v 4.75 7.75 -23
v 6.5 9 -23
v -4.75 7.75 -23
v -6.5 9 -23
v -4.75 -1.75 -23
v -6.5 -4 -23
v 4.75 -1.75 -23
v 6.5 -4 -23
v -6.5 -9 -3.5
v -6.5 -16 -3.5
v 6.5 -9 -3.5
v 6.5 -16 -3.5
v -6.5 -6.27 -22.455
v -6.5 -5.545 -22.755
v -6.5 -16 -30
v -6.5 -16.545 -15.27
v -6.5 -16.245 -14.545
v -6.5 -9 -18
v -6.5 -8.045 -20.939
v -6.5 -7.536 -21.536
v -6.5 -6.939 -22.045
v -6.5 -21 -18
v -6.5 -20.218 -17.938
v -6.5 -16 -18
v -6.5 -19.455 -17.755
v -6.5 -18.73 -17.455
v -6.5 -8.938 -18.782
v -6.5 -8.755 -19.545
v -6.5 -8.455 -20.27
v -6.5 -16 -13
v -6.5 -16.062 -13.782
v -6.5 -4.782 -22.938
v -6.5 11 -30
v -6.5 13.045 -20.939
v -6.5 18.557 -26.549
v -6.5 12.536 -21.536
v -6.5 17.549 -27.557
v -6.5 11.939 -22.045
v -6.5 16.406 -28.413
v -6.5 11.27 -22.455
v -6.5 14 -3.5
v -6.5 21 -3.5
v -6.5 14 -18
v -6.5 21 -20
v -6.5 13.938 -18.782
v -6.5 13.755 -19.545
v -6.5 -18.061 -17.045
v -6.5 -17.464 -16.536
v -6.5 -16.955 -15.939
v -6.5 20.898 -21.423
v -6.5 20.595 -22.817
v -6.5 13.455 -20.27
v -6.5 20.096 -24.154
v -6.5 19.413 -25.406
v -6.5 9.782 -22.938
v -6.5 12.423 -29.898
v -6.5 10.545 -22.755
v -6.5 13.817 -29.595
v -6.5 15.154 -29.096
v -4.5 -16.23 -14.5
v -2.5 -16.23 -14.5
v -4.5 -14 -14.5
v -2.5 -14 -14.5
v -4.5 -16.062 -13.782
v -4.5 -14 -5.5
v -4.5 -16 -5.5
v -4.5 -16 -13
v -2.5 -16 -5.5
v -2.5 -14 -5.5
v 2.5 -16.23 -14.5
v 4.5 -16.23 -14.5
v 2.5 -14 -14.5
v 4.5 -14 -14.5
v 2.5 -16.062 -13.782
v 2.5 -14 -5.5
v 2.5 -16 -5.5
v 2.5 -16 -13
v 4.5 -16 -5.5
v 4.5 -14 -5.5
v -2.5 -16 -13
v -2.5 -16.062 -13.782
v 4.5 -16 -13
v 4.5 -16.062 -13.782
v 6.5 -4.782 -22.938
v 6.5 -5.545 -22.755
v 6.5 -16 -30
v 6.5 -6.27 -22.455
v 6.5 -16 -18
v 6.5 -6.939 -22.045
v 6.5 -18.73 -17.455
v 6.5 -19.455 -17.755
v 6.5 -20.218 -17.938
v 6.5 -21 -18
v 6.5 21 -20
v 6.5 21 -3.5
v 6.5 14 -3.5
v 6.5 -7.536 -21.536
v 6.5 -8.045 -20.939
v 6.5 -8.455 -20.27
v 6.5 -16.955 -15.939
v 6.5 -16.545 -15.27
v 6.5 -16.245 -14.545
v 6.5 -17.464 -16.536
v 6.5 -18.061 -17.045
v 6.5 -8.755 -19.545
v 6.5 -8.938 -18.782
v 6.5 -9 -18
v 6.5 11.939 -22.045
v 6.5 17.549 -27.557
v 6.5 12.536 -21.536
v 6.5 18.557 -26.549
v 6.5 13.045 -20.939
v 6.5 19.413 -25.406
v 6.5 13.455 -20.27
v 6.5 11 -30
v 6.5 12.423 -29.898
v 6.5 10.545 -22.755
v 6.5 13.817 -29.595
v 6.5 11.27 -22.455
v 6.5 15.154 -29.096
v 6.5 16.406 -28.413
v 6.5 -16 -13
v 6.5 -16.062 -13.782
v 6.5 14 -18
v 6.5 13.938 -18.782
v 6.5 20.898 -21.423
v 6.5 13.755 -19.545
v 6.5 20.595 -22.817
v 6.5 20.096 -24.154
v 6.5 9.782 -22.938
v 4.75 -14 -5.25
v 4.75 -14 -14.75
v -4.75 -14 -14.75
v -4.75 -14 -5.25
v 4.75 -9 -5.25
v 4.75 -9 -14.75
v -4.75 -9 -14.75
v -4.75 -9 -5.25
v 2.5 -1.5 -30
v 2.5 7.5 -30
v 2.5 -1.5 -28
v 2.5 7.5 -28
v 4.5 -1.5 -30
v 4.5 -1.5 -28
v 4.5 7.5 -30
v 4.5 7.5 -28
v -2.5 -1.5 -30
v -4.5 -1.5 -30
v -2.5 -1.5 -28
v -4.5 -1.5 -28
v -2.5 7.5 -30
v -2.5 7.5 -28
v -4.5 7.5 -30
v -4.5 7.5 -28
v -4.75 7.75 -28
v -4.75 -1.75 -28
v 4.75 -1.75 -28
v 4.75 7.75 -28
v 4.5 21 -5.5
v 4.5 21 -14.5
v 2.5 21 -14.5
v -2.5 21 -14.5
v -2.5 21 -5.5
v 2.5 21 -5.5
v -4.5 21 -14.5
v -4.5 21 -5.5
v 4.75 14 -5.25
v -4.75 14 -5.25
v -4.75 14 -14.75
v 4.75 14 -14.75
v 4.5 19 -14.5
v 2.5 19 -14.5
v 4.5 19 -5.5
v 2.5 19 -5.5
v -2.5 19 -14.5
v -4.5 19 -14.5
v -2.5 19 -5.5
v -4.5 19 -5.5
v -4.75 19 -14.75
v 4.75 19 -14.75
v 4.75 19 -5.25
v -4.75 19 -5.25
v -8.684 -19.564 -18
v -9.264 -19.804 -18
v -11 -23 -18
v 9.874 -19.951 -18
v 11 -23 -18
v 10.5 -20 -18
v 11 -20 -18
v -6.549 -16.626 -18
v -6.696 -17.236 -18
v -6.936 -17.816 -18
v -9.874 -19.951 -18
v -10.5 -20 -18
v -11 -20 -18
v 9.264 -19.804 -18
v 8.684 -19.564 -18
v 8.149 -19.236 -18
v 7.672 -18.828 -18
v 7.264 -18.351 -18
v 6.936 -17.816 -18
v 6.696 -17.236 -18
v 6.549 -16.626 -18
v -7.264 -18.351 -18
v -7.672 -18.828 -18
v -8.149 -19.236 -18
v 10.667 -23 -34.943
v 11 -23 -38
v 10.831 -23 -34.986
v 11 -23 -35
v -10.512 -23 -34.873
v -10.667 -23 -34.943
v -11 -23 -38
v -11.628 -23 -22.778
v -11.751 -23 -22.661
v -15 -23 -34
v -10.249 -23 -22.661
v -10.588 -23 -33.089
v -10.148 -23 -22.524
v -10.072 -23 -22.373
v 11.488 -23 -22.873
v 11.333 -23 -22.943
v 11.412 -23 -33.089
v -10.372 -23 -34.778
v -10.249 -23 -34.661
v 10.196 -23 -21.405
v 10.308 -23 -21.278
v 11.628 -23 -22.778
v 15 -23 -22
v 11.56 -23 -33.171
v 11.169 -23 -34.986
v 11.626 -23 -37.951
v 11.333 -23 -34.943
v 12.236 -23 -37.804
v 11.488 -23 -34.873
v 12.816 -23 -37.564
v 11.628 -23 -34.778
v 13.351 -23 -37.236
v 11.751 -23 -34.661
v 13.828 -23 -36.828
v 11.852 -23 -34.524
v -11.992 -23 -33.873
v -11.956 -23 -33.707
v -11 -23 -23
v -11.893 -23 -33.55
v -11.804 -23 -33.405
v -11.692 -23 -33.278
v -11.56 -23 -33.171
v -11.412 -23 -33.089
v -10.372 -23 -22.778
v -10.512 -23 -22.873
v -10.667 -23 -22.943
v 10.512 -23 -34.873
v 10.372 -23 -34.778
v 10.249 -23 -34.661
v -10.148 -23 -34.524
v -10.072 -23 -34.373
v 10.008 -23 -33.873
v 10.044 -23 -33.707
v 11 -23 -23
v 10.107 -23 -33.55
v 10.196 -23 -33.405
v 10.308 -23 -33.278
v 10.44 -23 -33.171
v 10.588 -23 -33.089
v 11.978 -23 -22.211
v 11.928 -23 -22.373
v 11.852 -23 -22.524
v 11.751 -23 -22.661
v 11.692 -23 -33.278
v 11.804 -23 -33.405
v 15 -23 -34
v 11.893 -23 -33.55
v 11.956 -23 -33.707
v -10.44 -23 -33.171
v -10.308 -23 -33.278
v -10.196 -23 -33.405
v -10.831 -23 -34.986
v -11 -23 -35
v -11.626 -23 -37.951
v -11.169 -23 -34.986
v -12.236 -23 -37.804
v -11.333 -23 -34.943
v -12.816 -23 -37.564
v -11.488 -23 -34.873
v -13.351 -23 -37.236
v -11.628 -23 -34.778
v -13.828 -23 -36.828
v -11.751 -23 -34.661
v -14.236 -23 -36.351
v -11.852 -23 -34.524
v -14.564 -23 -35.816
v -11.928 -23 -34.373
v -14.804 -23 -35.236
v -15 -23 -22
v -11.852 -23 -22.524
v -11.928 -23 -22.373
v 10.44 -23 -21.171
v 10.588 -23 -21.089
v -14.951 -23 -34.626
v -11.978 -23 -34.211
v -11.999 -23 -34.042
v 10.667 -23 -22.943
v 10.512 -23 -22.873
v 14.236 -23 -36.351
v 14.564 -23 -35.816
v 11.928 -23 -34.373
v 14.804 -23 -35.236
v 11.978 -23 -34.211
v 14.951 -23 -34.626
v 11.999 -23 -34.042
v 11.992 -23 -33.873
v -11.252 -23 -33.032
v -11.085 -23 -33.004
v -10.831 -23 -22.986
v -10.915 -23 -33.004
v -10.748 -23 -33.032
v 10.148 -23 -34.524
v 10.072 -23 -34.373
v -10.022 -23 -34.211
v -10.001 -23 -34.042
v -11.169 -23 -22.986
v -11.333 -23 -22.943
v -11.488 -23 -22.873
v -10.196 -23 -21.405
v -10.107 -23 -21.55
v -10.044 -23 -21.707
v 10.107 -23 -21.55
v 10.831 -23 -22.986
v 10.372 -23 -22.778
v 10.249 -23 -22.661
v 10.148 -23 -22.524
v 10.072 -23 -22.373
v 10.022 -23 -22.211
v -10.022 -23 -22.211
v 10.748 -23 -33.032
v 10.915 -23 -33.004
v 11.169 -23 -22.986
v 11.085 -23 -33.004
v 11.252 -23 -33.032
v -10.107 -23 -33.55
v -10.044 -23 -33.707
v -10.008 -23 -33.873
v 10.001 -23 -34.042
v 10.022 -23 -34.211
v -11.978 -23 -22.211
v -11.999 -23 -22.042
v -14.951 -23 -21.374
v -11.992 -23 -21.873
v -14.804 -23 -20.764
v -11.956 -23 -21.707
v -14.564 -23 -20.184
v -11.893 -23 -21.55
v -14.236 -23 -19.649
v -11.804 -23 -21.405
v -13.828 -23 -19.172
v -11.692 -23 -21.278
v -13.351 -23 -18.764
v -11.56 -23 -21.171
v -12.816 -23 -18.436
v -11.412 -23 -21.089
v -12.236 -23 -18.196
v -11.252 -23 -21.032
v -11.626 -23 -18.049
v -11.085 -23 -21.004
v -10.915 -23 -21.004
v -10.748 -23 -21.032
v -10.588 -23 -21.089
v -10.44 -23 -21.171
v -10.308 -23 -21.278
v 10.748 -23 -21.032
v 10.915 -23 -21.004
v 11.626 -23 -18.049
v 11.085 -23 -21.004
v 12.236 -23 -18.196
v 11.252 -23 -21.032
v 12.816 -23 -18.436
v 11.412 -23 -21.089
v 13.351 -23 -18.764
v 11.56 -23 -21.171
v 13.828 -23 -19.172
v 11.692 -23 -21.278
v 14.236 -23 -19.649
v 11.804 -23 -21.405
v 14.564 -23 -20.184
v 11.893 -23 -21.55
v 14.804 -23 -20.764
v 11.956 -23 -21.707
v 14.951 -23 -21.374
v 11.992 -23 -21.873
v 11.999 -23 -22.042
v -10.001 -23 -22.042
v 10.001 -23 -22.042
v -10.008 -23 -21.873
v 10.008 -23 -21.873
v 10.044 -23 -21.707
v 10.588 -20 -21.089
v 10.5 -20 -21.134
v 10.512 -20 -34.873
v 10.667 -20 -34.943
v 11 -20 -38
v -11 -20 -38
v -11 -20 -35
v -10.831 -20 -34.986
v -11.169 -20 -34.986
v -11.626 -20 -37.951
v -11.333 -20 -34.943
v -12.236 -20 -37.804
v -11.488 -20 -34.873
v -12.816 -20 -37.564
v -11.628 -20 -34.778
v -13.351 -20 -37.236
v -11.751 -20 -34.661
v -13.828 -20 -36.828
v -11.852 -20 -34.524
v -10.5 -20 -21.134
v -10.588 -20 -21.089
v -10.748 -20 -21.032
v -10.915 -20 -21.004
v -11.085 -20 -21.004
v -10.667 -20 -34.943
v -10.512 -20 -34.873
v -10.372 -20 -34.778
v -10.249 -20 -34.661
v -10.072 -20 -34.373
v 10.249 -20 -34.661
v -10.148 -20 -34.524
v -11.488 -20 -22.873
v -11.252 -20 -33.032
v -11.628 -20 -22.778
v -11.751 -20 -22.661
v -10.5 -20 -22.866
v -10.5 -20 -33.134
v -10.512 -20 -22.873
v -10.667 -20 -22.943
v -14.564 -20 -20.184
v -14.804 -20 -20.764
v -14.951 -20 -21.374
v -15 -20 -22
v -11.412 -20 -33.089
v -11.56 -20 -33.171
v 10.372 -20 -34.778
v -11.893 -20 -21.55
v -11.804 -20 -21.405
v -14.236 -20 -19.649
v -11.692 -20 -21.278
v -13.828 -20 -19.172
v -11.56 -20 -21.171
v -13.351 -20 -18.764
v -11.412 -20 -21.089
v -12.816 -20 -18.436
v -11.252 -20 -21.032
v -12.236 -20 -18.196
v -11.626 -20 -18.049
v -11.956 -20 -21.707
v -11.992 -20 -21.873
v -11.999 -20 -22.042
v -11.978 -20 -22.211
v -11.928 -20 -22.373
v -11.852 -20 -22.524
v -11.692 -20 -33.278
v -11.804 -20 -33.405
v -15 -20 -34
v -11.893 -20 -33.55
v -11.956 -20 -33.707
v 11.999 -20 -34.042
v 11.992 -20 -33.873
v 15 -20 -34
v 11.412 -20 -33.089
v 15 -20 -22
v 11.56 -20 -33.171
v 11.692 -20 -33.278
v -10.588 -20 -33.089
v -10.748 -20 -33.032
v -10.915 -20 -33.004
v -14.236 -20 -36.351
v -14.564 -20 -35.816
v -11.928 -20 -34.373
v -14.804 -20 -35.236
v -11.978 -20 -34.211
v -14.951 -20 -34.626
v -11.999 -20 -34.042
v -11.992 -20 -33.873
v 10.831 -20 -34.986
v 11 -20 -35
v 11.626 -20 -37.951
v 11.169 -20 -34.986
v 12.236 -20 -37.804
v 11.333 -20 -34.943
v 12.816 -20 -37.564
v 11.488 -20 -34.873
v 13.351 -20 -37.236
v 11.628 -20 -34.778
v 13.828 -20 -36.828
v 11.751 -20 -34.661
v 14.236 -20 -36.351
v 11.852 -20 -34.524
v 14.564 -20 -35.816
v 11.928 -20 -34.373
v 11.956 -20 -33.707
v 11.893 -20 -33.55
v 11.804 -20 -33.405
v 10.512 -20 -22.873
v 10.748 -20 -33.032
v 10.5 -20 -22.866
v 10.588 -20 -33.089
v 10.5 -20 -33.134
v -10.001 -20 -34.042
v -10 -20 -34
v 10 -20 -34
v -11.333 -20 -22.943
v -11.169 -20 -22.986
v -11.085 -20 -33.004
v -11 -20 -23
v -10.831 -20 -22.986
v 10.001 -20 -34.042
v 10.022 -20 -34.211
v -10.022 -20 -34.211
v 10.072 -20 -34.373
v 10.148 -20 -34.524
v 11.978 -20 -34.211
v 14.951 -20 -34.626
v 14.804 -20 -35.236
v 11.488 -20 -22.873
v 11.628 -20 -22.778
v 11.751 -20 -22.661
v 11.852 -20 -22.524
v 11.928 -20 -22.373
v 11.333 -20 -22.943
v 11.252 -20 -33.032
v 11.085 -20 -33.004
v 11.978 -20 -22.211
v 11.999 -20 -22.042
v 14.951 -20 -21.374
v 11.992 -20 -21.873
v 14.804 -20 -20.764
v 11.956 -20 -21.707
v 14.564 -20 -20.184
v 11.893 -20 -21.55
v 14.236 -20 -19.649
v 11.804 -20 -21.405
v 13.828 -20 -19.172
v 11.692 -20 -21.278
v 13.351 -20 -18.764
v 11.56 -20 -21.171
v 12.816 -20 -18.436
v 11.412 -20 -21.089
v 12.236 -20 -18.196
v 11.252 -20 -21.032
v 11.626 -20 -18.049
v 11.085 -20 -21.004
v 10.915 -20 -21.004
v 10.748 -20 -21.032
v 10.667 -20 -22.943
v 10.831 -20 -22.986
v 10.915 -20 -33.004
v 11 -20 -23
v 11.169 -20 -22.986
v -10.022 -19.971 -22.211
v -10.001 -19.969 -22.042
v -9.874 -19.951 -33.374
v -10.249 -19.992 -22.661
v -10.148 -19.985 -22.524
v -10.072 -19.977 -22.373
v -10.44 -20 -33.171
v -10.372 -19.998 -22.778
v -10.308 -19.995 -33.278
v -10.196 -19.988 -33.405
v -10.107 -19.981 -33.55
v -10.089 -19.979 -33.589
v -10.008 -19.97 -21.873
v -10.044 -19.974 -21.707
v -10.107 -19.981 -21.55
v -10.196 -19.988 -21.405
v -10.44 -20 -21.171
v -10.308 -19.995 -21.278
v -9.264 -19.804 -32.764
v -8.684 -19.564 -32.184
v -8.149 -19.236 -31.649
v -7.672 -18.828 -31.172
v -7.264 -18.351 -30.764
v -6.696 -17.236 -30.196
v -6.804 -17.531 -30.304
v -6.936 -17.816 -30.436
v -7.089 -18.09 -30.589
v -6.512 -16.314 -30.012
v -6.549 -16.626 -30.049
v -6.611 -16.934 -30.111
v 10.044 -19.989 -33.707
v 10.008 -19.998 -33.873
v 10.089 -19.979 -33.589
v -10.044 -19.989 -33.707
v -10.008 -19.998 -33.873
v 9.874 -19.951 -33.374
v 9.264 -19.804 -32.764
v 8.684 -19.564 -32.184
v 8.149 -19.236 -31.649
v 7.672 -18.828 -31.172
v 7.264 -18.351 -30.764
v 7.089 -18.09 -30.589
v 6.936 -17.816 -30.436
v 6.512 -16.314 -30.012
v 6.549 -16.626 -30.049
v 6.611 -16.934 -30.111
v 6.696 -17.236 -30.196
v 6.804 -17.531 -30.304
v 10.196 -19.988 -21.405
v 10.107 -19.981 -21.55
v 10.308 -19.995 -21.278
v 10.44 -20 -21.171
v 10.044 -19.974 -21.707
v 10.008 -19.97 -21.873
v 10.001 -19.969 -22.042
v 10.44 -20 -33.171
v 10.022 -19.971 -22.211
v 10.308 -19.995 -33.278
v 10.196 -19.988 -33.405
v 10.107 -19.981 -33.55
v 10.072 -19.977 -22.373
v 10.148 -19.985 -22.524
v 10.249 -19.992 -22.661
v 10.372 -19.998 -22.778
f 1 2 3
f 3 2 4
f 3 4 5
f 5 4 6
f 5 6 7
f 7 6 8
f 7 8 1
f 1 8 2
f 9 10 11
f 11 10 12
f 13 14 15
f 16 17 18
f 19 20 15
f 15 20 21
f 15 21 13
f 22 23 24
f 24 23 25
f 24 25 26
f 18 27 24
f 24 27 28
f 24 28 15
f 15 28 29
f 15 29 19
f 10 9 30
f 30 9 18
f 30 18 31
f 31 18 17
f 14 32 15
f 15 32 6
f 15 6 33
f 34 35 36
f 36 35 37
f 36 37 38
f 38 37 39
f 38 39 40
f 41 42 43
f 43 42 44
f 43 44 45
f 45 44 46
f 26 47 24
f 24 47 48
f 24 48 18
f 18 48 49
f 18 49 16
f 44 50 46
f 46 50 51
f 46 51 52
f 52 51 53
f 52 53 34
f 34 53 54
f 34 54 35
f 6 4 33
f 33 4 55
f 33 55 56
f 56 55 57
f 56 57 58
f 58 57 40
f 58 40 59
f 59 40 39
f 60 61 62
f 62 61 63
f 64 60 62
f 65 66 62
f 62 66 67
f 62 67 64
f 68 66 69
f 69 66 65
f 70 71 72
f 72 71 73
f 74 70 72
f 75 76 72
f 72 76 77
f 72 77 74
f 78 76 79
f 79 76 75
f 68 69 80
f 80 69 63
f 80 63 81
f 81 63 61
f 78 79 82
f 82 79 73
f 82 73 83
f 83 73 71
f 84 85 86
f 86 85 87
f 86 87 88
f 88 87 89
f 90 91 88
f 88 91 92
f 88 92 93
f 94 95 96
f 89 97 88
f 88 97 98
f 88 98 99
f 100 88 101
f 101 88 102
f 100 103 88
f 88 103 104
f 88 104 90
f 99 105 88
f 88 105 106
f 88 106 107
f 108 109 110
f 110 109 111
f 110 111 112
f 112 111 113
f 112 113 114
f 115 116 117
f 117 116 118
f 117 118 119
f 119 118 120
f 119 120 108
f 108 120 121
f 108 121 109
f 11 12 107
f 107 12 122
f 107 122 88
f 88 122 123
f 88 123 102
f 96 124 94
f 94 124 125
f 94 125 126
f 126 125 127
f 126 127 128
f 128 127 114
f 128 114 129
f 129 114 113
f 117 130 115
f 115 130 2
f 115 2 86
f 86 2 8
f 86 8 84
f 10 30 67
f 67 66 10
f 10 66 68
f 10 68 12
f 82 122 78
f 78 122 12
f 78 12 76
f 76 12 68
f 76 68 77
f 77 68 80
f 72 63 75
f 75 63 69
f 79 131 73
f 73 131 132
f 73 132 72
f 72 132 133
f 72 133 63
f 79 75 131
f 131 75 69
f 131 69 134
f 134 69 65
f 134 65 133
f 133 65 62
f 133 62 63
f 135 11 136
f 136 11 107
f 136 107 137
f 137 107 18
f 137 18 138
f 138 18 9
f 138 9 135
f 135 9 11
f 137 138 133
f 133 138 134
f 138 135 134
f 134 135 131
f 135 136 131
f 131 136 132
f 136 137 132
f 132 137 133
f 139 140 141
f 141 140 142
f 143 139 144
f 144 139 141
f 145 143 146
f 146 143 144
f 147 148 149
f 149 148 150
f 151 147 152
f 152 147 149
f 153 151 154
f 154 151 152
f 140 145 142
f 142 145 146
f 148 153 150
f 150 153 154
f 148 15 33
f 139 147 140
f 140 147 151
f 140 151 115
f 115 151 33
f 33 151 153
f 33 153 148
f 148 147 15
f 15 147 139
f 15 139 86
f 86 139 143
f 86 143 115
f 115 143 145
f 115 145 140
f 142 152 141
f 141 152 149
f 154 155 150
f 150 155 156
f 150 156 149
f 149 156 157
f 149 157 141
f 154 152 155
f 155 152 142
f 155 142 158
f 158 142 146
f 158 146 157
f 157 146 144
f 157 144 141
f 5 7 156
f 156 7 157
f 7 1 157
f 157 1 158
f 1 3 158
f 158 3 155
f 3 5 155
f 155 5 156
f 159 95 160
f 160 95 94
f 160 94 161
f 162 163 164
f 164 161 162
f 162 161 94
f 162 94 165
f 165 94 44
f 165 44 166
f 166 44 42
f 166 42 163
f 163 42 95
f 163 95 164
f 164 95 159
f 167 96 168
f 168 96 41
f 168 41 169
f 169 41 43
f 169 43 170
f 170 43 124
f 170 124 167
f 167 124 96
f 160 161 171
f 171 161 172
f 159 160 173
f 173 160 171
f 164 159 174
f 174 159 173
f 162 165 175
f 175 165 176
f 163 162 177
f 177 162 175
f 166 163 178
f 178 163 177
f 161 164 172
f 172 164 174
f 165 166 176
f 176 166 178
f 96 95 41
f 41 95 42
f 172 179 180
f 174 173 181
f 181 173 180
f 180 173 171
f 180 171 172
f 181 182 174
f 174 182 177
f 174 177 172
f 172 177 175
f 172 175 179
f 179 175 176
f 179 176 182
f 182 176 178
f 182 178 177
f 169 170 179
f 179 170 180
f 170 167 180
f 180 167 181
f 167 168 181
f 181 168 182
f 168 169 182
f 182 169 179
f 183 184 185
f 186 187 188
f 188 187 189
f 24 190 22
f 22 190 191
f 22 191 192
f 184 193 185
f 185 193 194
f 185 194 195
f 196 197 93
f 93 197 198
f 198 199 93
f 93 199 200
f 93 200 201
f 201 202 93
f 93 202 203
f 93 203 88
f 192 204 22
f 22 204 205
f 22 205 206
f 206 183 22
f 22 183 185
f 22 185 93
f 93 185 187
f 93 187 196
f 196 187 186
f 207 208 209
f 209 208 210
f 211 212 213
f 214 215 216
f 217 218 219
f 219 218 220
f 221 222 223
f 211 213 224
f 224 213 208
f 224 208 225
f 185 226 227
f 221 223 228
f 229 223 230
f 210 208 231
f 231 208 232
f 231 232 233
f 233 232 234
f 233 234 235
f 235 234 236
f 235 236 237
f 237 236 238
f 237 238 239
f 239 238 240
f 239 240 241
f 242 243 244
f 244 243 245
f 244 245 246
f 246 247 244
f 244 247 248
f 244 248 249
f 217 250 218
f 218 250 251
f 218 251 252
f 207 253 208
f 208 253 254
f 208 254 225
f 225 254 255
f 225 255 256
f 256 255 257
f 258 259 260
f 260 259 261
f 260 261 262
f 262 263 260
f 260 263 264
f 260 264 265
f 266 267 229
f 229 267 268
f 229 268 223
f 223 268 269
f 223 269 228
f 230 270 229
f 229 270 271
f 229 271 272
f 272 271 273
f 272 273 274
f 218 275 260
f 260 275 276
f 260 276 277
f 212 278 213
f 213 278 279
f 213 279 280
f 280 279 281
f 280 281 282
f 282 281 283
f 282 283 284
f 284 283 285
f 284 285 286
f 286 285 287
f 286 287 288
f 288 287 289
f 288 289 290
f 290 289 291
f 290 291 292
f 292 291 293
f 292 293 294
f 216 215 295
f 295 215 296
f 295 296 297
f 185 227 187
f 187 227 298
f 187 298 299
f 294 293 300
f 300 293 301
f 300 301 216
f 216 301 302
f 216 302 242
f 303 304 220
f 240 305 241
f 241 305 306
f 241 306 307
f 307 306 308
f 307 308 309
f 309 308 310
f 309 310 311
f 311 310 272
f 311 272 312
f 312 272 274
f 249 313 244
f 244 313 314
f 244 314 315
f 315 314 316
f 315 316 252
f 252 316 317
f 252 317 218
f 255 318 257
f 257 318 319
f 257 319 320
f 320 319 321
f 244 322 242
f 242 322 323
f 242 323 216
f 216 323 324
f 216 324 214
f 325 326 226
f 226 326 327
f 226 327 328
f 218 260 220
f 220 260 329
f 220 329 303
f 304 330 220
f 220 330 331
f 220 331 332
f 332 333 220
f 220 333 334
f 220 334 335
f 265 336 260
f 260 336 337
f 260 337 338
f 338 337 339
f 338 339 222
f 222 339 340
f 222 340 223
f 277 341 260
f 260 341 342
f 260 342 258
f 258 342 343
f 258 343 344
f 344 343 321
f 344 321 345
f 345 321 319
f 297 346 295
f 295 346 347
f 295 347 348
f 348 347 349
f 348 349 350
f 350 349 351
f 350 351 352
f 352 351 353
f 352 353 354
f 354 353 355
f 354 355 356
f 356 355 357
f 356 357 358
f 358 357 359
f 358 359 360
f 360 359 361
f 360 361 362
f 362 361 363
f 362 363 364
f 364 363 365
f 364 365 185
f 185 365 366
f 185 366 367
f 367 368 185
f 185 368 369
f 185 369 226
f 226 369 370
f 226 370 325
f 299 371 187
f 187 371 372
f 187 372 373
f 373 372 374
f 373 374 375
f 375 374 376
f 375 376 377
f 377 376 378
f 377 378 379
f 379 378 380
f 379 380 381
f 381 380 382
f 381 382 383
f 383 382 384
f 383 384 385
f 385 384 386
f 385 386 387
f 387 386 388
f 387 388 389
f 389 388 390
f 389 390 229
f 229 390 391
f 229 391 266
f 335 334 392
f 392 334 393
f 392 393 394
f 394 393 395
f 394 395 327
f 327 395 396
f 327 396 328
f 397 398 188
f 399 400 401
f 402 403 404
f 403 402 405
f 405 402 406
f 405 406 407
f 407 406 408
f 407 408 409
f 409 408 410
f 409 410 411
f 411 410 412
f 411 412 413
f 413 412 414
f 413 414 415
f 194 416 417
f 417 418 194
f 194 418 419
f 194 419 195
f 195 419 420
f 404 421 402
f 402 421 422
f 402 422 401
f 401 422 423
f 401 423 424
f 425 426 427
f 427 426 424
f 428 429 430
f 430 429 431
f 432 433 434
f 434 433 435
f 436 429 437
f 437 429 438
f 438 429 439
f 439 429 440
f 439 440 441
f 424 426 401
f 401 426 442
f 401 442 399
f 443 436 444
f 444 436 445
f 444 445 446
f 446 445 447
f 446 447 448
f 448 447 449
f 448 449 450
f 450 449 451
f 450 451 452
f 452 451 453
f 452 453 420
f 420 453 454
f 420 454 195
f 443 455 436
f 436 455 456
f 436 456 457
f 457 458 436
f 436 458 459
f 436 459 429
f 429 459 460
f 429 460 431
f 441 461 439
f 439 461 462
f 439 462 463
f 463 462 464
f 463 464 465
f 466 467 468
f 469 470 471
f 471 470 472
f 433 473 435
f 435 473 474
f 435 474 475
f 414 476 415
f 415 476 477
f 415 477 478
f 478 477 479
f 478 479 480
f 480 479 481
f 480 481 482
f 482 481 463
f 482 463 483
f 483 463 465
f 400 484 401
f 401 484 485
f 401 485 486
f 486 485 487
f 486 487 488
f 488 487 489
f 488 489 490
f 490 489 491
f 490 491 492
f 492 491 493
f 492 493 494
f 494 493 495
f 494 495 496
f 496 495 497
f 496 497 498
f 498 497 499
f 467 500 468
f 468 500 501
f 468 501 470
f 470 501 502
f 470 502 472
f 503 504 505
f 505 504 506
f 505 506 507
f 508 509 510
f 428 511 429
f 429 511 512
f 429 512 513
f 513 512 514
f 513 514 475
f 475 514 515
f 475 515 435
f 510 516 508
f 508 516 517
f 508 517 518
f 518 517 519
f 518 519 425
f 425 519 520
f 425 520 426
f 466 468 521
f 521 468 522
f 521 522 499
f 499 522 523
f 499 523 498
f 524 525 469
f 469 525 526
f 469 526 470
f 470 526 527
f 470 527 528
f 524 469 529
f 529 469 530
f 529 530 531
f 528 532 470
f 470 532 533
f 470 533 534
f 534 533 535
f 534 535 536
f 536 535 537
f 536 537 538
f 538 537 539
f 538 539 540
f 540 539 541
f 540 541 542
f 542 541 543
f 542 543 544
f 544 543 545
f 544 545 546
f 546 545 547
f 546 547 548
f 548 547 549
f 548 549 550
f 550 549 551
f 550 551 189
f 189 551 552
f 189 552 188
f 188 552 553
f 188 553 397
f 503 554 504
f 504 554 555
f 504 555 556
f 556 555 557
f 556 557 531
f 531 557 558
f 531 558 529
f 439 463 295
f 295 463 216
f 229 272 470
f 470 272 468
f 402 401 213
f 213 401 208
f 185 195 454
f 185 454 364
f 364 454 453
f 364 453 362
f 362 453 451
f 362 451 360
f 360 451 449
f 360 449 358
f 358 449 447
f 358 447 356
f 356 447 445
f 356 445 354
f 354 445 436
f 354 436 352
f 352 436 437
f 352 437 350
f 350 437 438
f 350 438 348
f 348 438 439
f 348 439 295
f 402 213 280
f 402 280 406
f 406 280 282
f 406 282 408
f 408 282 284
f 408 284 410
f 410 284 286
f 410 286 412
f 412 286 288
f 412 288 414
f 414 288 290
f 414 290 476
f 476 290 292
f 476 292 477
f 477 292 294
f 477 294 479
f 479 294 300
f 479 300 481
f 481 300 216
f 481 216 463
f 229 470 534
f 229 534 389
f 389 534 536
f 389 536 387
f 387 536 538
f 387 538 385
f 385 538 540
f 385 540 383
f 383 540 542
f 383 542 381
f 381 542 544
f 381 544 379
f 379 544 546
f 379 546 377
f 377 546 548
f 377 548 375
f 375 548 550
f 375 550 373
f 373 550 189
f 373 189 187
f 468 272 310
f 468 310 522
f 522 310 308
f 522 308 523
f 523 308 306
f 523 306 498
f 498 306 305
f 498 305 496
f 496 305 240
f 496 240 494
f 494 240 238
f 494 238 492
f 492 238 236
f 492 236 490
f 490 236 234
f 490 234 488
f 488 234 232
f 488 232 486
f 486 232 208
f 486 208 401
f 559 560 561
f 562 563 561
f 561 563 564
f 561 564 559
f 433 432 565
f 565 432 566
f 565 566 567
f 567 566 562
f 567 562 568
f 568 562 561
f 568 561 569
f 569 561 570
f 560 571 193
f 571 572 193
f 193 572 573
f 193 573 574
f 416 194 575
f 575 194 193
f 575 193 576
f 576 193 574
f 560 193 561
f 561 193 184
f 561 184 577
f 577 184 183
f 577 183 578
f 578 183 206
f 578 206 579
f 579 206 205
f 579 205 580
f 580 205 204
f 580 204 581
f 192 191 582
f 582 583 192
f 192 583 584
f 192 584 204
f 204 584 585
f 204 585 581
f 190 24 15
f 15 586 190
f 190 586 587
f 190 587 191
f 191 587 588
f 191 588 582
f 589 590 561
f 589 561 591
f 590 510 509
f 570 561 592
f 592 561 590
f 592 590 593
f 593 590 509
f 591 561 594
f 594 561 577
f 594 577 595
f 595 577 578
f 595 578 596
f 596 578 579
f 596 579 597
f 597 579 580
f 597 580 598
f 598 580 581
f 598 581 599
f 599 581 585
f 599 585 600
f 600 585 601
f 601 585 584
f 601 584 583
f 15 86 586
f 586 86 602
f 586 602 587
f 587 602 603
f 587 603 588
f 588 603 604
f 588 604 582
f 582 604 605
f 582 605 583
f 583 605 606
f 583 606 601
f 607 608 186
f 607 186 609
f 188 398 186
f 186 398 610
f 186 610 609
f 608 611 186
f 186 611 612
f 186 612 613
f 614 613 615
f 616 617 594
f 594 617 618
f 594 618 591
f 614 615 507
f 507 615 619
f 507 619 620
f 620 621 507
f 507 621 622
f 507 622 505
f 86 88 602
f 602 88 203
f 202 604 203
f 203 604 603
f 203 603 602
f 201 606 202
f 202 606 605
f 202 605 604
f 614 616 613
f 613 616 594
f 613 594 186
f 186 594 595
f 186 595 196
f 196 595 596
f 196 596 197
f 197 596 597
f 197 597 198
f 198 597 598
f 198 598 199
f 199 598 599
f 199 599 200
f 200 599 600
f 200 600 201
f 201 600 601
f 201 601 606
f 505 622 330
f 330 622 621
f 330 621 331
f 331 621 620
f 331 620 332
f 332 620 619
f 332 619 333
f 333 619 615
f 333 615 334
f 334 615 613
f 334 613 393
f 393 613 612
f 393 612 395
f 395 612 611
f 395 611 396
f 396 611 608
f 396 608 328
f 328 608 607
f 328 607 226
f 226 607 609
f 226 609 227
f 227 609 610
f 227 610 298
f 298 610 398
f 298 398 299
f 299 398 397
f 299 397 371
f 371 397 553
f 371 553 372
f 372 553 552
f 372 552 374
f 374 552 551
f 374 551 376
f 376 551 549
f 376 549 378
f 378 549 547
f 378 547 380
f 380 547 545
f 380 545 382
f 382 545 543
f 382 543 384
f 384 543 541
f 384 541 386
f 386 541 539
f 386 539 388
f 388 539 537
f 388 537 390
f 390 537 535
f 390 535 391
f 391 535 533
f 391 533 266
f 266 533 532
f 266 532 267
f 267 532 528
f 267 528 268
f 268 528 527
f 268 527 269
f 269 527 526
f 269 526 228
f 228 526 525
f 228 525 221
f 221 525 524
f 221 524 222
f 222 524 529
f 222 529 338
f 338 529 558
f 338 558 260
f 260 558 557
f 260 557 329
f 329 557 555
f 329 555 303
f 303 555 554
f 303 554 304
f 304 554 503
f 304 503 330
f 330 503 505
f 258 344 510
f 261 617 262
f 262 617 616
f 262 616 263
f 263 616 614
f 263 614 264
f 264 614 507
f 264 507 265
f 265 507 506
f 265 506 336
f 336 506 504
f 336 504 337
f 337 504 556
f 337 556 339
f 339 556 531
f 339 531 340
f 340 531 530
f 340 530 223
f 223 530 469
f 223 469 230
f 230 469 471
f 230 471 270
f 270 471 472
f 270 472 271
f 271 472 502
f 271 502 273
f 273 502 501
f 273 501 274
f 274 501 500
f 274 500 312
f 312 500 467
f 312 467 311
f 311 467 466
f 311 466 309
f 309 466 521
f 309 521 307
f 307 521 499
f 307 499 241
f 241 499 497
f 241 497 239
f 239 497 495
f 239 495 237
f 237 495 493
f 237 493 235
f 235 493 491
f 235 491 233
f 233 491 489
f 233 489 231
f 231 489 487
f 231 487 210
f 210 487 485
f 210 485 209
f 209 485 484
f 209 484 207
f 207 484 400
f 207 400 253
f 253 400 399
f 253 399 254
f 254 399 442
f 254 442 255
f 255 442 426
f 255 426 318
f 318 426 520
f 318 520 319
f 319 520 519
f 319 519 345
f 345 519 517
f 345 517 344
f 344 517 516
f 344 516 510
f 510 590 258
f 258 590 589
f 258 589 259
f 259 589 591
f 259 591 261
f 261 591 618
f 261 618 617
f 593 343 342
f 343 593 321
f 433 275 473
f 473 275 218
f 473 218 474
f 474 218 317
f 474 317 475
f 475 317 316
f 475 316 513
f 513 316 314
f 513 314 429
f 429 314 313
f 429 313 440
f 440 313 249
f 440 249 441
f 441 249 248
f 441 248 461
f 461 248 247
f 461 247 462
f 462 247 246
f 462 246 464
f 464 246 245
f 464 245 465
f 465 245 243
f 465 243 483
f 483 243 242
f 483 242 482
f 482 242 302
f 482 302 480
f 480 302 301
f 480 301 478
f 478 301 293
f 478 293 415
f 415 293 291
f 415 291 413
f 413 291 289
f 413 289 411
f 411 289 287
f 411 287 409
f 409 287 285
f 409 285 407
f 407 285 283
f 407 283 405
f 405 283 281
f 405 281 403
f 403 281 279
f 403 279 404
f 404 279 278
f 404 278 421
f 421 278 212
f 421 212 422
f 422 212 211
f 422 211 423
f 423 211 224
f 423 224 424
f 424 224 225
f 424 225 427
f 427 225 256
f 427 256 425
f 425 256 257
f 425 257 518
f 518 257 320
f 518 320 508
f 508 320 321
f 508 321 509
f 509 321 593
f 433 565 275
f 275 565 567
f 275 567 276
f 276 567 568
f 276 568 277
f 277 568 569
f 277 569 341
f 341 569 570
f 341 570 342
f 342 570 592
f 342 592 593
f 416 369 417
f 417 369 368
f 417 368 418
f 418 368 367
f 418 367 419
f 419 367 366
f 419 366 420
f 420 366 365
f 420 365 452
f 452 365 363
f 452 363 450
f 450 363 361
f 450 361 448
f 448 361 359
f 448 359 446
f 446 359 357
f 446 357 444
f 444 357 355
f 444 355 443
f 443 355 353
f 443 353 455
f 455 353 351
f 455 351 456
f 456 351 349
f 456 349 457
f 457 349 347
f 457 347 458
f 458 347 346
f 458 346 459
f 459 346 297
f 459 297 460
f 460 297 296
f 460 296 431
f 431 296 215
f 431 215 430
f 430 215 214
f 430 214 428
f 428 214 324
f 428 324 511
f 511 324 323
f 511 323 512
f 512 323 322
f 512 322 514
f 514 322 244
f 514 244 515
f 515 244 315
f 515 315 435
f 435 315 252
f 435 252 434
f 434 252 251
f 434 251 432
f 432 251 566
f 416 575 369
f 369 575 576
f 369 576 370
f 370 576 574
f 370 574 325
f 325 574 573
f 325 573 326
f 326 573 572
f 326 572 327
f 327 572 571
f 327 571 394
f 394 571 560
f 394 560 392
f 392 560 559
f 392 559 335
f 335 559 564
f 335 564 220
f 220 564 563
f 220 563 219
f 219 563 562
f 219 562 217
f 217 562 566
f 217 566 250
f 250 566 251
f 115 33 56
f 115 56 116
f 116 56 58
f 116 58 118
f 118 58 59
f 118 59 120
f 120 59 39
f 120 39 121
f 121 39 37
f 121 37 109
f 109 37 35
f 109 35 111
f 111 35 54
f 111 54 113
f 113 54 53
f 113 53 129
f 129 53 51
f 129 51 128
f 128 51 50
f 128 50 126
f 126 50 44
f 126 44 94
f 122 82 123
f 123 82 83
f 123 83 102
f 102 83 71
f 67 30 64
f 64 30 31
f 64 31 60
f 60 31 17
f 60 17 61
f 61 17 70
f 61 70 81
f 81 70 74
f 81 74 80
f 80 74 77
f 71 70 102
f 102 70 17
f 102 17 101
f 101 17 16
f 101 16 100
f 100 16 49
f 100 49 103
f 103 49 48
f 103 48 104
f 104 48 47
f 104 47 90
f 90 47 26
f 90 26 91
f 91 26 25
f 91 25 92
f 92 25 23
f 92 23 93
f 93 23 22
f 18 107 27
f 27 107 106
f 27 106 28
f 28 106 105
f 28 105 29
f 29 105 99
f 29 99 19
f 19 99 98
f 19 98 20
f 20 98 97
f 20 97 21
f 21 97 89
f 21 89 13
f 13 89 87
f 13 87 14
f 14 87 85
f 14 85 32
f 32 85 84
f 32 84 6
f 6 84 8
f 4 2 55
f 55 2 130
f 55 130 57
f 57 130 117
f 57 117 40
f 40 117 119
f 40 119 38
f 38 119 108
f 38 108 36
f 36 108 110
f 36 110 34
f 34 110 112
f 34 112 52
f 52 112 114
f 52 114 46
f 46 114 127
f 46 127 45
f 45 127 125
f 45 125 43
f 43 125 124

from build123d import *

# Parameters (mm, degrees)
SKETCH1_W            = 13
SKETCH1_H            = 13
SKETCH1_W_2          = 5
SKETCH1_H_2          = 9
BOSS_EXTRUDE1_DEPTH  = 2
SKETCH2_W            = 13
SKETCH2_H            = 13
SKETCH2_W_2          = 9.5
SKETCH2_H_2          = 9.5
BOSS_EXTRUDE2_DEPTH  = 5
SKETCH3_W            = 13
SKETCH3_H            = 13
SKETCH3_W_2          = 5
SKETCH3_H_2          = 9
BOSS_EXTRUDE3_DEPTH  = 2
SKETCH4_W            = 13
SKETCH4_H            = 13
SKETCH4_W_2          = 9.5
SKETCH4_H_2          = 9.5
BOSS_EXTRUDE4_DEPTH  = 5
SKETCH5_W            = 13
SKETCH5_H            = 13
SKETCH5_W_2          = 5
SKETCH5_H_2          = 9
BOSS_EXTRUDE5_DEPTH  = 2
SKETCH6_W            = 13
SKETCH6_H            = 13
SKETCH6_W_2          = 9.5
SKETCH6_H_2          = 9.5
BOSS_EXTRUDE6_DEPTH  = 5
SKETCH7_W            = 13
SKETCH7_H            = 7
BOSS_EXTRUDE7_DEPTH  = 12.5
SKETCH8_W            = 13
SKETCH8_H            = 7
BOSS_EXTRUDE8_DEPTH  = 11.5
BOSS_EXTRUDE9_REACH  = 27.797
SKETCH9_W            = 13
SKETCH9_H            = 7
SKETCH10_W           = 13
SKETCH10_H           = 12
BOSS_EXTRUDE10_DEPTH = 7
SKETCH11_W           = 30
SKETCH11_H           = 20
BOSS_EXTRUDE11_DEPTH = 3
FILLET1_R            = 4
CUT_EXTRUDE1_REACH   = 62.042
SKETCH12_R           = 1
FILLET2_R            = 10
FILLET3_R            = 5


with BuildPart() as part:
    # Sketch1 → Boss-Extrude1 (new body)
    # profile 1 of 2: a face of its own
    with BuildSketch(Plane.XZ.offset(14)):
        with Locations((0, -10)):
            Rectangle(SKETCH1_W, SKETCH1_H)
        Polygon((-4.5, -14.5), (-2.5, -14.5), (2.5, -14.5), (4.5, -14.5), (4.5, -5.5), (2.5, -5.5), (-2.5, -5.5), (-4.5, -5.5), align=None, mode=Mode.SUBTRACT)
    # profile 2 of 2: a face of its own
    with BuildSketch(Plane.XZ.offset(14)):
        with Locations((0, -10)):
            Rectangle(SKETCH1_W_2, SKETCH1_H_2)
    extrude(amount=BOSS_EXTRUDE1_DEPTH)

    # Sketch2 → Boss-Extrude2 (add)
    with BuildSketch(Plane(origin=(0, -14, 0), x_dir=(1, 0, 0), z_dir=(0, 1, 0))):
        with Locations((0, 10)):
            Rectangle(SKETCH2_W, SKETCH2_H)
        with Locations((0, 10)):
            Rectangle(SKETCH2_W_2, SKETCH2_H_2, mode=Mode.SUBTRACT)
    extrude(amount=BOSS_EXTRUDE2_DEPTH)


with BuildPart() as body_2:
    # Sketch3 → Boss-Extrude3 (new body)
    # profile 1 of 2: a face of its own
    with BuildSketch(Plane(origin=(0, 0, -28), x_dir=(-1, 0, 0), z_dir=(0, 0, -1))):
        with Locations((0, 3)):
            Rectangle(SKETCH3_W, SKETCH3_H)
        Polygon((4.5, -1.5), (2.5, -1.5), (-2.5, -1.5), (-4.5, -1.5), (-4.5, 7.5), (-2.5, 7.5), (2.5, 7.5), (4.5, 7.5), align=None, mode=Mode.SUBTRACT)
    # profile 2 of 2: a face of its own
    with BuildSketch(Plane(origin=(0, 0, -28), x_dir=(-1, 0, 0), z_dir=(0, 0, -1))):
        with Locations((0, 3)):
            Rectangle(SKETCH3_W_2, SKETCH3_H_2)
    extrude(amount=BOSS_EXTRUDE3_DEPTH)

    # Sketch4 → Boss-Extrude4 (add)
    with BuildSketch(Plane.XY.offset(-28)):
        with Locations((0, 3)):
            Rectangle(SKETCH4_W, SKETCH4_H)
        with Locations((0, 3)):
            Rectangle(SKETCH4_W_2, SKETCH4_H_2, mode=Mode.SUBTRACT)
    extrude(amount=BOSS_EXTRUDE4_DEPTH)

    # Sketch7 → Boss-Extrude7 (add)
    with BuildSketch(Plane.XZ.offset(3.5)):
        with Locations((0, -26.5)):
            Rectangle(SKETCH7_W, SKETCH7_H)
    extrude(amount=BOSS_EXTRUDE7_DEPTH)

    # Sketch8 → Boss-Extrude8 (add)
    with BuildSketch(Plane(origin=(0, 9.5, 0), x_dir=(1, 0, 0), z_dir=(0, 1, 0))):
        with Locations((0, 26.5)):
            Rectangle(SKETCH8_W, SKETCH8_H)
    extrude(amount=BOSS_EXTRUDE8_DEPTH)

    # Sketch9 → Boss-Extrude9 (add, up to next)
    with BuildSketch(Plane(origin=(0, 0, -16.5), x_dir=(-1, 0, 0), z_dir=(0, 0, -1)), mode=Mode.PRIVATE) as boss_extrude9_sk1:
        with Locations((0, -12.5)):
            Rectangle(SKETCH9_W, SKETCH9_H)
    boss_extrude9_tool1 = extrude(boss_extrude9_sk1.sketch, amount=BOSS_EXTRUDE9_REACH, mode=Mode.PRIVATE) - body_2.part
    # Sketch9 → Boss-Extrude9 (add, up to next)
    with BuildSketch(Plane(origin=(0, 0, -16.5), x_dir=(-1, 0, 0), z_dir=(0, 0, -1)), mode=Mode.PRIVATE) as boss_extrude9_sk2:
        with Locations((0, 17.5)):
            Rectangle(SKETCH9_W, SKETCH9_H)
    boss_extrude9_tool2 = extrude(boss_extrude9_sk2.sketch, amount=BOSS_EXTRUDE9_REACH, mode=Mode.PRIVATE) - body_2.part

    add(part.part)  # Boss-Extrude9 merges part


with BuildPart() as body_3:
    # Sketch5 → Boss-Extrude5 (new body)
    # profile 1 of 2: a face of its own
    with BuildSketch(Plane(origin=(0, 19, 0), x_dir=(1, 0, 0), z_dir=(0, 1, 0))):
        with Locations((0, 10)):
            Rectangle(SKETCH5_W, SKETCH5_H)
        Polygon((-4.5, 14.5), (-2.5, 14.5), (2.5, 14.5), (4.5, 14.5), (4.5, 5.5), (2.5, 5.5), (-2.5, 5.5), (-4.5, 5.5), align=None, mode=Mode.SUBTRACT)
    # profile 2 of 2: a face of its own
    with BuildSketch(Plane(origin=(0, 19, 0), x_dir=(1, 0, 0), z_dir=(0, 1, 0))):
        with Locations((0, 10)):
            Rectangle(SKETCH5_W_2, SKETCH5_H_2)
    extrude(amount=BOSS_EXTRUDE5_DEPTH)

    # Sketch6 → Boss-Extrude6 (add)
    with BuildSketch(Plane.XZ.offset(-19)):
        with Locations((0, -10)):
            Rectangle(SKETCH6_W, SKETCH6_H)
        with Locations((0, -10)):
            Rectangle(SKETCH6_W_2, SKETCH6_H_2, mode=Mode.SUBTRACT)
    extrude(amount=BOSS_EXTRUDE6_DEPTH)


with BuildPart() as body_2_1:
    add(body_2.part)

    add(body_3.part)  # Boss-Extrude9 merges body 3
    add(boss_extrude9_tool1.solids().sort_by_distance((0, -12.5, -16.5))[0])
    add(boss_extrude9_tool2.solids().sort_by_distance((0, 17.5, -16.5))[0])

    # Sketch10 → Boss-Extrude10 (add)
    with BuildSketch(Plane.XZ.offset(16)):
        with Locations((0, -24)):
            Rectangle(SKETCH10_W, SKETCH10_H)
    extrude(amount=BOSS_EXTRUDE10_DEPTH)

    # Sketch11 → Boss-Extrude11 (add)
    with BuildSketch(Plane.XZ.offset(23)):
        with Locations((0, -28)):
            Rectangle(SKETCH11_W, SKETCH11_H)
    extrude(amount=-BOSS_EXTRUDE11_DEPTH)

    # Fillet1
    fillet1_edges = [body_2_1.edges().sort_by_distance(p)[0] for p in [
        (6.5, -20, -24),
        (-6.5, -20, -24),
        (0, -20, -30),
        (-15, -21.5, -18),
        (-15, -21.5, -38),
        (15, -21.5, -18),
        (15, -21.5, -38),
    ]]
    fillet(fillet1_edges, radius=FILLET1_R)

    # Sketch12 → Cut-Extrude1 (cut, up to next)
    with BuildSketch(Plane.XZ.offset(23), mode=Mode.PRIVATE) as cut_extrude1_sk1:
        with Locations(Location((-11, -22, 0), (0, 0, 270))):
            Circle(SKETCH12_R)
    cut_extrude1_tool1 = extrude(cut_extrude1_sk1.sketch, amount=-CUT_EXTRUDE1_REACH, mode=Mode.PRIVATE) & body_2_1.part
    # Sketch12 → Cut-Extrude1 (cut, up to next)
    with BuildSketch(Plane.XZ.offset(23), mode=Mode.PRIVATE) as cut_extrude1_sk2:
        with Locations(Location((11, -22, 0), (0, 0, 270))):
            Circle(SKETCH12_R)
    cut_extrude1_tool2 = extrude(cut_extrude1_sk2.sketch, amount=-CUT_EXTRUDE1_REACH, mode=Mode.PRIVATE) & body_2_1.part
    # Sketch12 → Cut-Extrude1 (cut, up to next)
    with BuildSketch(Plane.XZ.offset(23), mode=Mode.PRIVATE) as cut_extrude1_sk3:
        with Locations(Location((11, -34, 0), (0, 0, 270))):
            Circle(SKETCH12_R)
    cut_extrude1_tool3 = extrude(cut_extrude1_sk3.sketch, amount=-CUT_EXTRUDE1_REACH, mode=Mode.PRIVATE) & body_2_1.part
    # Sketch12 → Cut-Extrude1 (cut, up to next)
    with BuildSketch(Plane.XZ.offset(23), mode=Mode.PRIVATE) as cut_extrude1_sk4:
        with Locations(Location((-11, -34, 0), (0, 0, 270))):
            Circle(SKETCH12_R)
    cut_extrude1_tool4 = extrude(cut_extrude1_sk4.sketch, amount=-CUT_EXTRUDE1_REACH, mode=Mode.PRIVATE) & body_2_1.part
    add(cut_extrude1_tool1.solids().sort_by_distance((-11, -23, -22))[0], mode=Mode.SUBTRACT)
    add(cut_extrude1_tool2.solids().sort_by_distance((11, -23, -22))[0], mode=Mode.SUBTRACT)
    add(cut_extrude1_tool3.solids().sort_by_distance((11, -23, -34))[0], mode=Mode.SUBTRACT)
    add(cut_extrude1_tool4.solids().sort_by_distance((-11, -23, -34))[0], mode=Mode.SUBTRACT)

    # Fillet2
    fillet2_edges = [body_2_1.edges().sort_by_distance(p)[0] for p in [
        (0, 21, -30),
    ]]
    fillet(fillet2_edges, radius=FILLET2_R)

    # Fillet3
    # the kernel refuses this fillet: 5 mm, written as the material it adds along each edge
    with BuildSketch(Plane(origin=(-6.5, 14, -23), x_dir=(0, 0, 1), z_dir=(1, 0, 0)), Plane(origin=(6.5, -9, -23), x_dir=(0, 0, 1), z_dir=(-1, 0, 0))) as fillet3_piece_1:
        with BuildLine():
            CenterArc((FILLET3_R, FILLET3_R), FILLET3_R, 180, 90)
            Line((0, FILLET3_R), (0, 0))
            Line((0, 0), (FILLET3_R, 0))
        make_face()
    extrude(amount=13)
    with BuildSketch(Plane(origin=(-6.5, -16, -18), x_dir=(0, 0, 1), z_dir=(1, 0, 0))) as fillet3_piece_2_section:
        with BuildLine():
            CenterArc((FILLET3_R, FILLET3_R), FILLET3_R, 180, 90)
            Line((0, FILLET3_R), (0, 0))
            Line((0, 0), (FILLET3_R, 0))
        make_face()
    fillet3_piece_2 = extrude(amount=13, mode=Mode.PRIVATE)
    fillet3_piece_2 = split(fillet3_piece_2, bisect_by=Plane(origin=(-5.5, -20.249492121, -14.5), z_dir=(0, 0, -1)), keep=Keep.TOP, mode=Mode.PRIVATE)
    add(fillet3_piece_2)
    with BuildSketch(Plane(origin=(-6.5, -16, -18), x_dir=(0, 0, 1), z_dir=(1, 0, 0))) as fillet3_piece_3_section:
        with BuildLine():
            CenterArc((FILLET3_R, FILLET3_R), FILLET3_R, 180, 90)
            Line((0, FILLET3_R), (0, 0))
            Line((0, 0), (FILLET3_R, 0))
        make_face()
    fillet3_piece_3 = extrude(amount=25.5, mode=Mode.PRIVATE)
    fillet3_piece_3 = split(fillet3_piece_3, bisect_by=Plane(origin=(-4.5, -16.06880959, -14.126748988), z_dir=(-1, 0, 0)), keep=Keep.TOP, mode=Mode.PRIVATE)
    add(fillet3_piece_3)
    with BuildSketch(Plane(origin=(-19, -16, -18), x_dir=(0, 0, 1), z_dir=(1, 0, 0))) as fillet3_piece_4_section:
        with BuildLine():
            CenterArc((FILLET3_R, FILLET3_R), FILLET3_R, 180, 90)
            Line((0, FILLET3_R), (0, 0))
            Line((0, 0), (FILLET3_R, 0))
        make_face()
    fillet3_piece_4 = extrude(amount=38, mode=Mode.PRIVATE)
    fillet3_piece_4 = split(fillet3_piece_4, bisect_by=Plane(origin=(-2.5, -16.06880959, -14.126748988), z_dir=(1, 0, 0)), keep=Keep.TOP, mode=Mode.PRIVATE)
    fillet3_piece_4 = split(fillet3_piece_4, bisect_by=Plane(origin=(2.5, -16.06880959, -14.126748988), z_dir=(-1, 0, 0)), keep=Keep.TOP, mode=Mode.PRIVATE)
    add(fillet3_piece_4)
    with BuildSketch(Plane(origin=(-19, -16, -18), x_dir=(0, 0, 1), z_dir=(1, 0, 0))) as fillet3_piece_5_section:
        with BuildLine():
            CenterArc((FILLET3_R, FILLET3_R), FILLET3_R, 180, 90)
            Line((0, FILLET3_R), (0, 0))
            Line((0, 0), (FILLET3_R, 0))
        make_face()
    fillet3_piece_5 = extrude(amount=25.5, mode=Mode.PRIVATE)
    fillet3_piece_5 = split(fillet3_piece_5, bisect_by=Plane(origin=(4.5, -16.06880959, -14.12674899), z_dir=(1, 0, 0)), keep=Keep.TOP, mode=Mode.PRIVATE)
    add(fillet3_piece_5)


solid = body_2_1.part
